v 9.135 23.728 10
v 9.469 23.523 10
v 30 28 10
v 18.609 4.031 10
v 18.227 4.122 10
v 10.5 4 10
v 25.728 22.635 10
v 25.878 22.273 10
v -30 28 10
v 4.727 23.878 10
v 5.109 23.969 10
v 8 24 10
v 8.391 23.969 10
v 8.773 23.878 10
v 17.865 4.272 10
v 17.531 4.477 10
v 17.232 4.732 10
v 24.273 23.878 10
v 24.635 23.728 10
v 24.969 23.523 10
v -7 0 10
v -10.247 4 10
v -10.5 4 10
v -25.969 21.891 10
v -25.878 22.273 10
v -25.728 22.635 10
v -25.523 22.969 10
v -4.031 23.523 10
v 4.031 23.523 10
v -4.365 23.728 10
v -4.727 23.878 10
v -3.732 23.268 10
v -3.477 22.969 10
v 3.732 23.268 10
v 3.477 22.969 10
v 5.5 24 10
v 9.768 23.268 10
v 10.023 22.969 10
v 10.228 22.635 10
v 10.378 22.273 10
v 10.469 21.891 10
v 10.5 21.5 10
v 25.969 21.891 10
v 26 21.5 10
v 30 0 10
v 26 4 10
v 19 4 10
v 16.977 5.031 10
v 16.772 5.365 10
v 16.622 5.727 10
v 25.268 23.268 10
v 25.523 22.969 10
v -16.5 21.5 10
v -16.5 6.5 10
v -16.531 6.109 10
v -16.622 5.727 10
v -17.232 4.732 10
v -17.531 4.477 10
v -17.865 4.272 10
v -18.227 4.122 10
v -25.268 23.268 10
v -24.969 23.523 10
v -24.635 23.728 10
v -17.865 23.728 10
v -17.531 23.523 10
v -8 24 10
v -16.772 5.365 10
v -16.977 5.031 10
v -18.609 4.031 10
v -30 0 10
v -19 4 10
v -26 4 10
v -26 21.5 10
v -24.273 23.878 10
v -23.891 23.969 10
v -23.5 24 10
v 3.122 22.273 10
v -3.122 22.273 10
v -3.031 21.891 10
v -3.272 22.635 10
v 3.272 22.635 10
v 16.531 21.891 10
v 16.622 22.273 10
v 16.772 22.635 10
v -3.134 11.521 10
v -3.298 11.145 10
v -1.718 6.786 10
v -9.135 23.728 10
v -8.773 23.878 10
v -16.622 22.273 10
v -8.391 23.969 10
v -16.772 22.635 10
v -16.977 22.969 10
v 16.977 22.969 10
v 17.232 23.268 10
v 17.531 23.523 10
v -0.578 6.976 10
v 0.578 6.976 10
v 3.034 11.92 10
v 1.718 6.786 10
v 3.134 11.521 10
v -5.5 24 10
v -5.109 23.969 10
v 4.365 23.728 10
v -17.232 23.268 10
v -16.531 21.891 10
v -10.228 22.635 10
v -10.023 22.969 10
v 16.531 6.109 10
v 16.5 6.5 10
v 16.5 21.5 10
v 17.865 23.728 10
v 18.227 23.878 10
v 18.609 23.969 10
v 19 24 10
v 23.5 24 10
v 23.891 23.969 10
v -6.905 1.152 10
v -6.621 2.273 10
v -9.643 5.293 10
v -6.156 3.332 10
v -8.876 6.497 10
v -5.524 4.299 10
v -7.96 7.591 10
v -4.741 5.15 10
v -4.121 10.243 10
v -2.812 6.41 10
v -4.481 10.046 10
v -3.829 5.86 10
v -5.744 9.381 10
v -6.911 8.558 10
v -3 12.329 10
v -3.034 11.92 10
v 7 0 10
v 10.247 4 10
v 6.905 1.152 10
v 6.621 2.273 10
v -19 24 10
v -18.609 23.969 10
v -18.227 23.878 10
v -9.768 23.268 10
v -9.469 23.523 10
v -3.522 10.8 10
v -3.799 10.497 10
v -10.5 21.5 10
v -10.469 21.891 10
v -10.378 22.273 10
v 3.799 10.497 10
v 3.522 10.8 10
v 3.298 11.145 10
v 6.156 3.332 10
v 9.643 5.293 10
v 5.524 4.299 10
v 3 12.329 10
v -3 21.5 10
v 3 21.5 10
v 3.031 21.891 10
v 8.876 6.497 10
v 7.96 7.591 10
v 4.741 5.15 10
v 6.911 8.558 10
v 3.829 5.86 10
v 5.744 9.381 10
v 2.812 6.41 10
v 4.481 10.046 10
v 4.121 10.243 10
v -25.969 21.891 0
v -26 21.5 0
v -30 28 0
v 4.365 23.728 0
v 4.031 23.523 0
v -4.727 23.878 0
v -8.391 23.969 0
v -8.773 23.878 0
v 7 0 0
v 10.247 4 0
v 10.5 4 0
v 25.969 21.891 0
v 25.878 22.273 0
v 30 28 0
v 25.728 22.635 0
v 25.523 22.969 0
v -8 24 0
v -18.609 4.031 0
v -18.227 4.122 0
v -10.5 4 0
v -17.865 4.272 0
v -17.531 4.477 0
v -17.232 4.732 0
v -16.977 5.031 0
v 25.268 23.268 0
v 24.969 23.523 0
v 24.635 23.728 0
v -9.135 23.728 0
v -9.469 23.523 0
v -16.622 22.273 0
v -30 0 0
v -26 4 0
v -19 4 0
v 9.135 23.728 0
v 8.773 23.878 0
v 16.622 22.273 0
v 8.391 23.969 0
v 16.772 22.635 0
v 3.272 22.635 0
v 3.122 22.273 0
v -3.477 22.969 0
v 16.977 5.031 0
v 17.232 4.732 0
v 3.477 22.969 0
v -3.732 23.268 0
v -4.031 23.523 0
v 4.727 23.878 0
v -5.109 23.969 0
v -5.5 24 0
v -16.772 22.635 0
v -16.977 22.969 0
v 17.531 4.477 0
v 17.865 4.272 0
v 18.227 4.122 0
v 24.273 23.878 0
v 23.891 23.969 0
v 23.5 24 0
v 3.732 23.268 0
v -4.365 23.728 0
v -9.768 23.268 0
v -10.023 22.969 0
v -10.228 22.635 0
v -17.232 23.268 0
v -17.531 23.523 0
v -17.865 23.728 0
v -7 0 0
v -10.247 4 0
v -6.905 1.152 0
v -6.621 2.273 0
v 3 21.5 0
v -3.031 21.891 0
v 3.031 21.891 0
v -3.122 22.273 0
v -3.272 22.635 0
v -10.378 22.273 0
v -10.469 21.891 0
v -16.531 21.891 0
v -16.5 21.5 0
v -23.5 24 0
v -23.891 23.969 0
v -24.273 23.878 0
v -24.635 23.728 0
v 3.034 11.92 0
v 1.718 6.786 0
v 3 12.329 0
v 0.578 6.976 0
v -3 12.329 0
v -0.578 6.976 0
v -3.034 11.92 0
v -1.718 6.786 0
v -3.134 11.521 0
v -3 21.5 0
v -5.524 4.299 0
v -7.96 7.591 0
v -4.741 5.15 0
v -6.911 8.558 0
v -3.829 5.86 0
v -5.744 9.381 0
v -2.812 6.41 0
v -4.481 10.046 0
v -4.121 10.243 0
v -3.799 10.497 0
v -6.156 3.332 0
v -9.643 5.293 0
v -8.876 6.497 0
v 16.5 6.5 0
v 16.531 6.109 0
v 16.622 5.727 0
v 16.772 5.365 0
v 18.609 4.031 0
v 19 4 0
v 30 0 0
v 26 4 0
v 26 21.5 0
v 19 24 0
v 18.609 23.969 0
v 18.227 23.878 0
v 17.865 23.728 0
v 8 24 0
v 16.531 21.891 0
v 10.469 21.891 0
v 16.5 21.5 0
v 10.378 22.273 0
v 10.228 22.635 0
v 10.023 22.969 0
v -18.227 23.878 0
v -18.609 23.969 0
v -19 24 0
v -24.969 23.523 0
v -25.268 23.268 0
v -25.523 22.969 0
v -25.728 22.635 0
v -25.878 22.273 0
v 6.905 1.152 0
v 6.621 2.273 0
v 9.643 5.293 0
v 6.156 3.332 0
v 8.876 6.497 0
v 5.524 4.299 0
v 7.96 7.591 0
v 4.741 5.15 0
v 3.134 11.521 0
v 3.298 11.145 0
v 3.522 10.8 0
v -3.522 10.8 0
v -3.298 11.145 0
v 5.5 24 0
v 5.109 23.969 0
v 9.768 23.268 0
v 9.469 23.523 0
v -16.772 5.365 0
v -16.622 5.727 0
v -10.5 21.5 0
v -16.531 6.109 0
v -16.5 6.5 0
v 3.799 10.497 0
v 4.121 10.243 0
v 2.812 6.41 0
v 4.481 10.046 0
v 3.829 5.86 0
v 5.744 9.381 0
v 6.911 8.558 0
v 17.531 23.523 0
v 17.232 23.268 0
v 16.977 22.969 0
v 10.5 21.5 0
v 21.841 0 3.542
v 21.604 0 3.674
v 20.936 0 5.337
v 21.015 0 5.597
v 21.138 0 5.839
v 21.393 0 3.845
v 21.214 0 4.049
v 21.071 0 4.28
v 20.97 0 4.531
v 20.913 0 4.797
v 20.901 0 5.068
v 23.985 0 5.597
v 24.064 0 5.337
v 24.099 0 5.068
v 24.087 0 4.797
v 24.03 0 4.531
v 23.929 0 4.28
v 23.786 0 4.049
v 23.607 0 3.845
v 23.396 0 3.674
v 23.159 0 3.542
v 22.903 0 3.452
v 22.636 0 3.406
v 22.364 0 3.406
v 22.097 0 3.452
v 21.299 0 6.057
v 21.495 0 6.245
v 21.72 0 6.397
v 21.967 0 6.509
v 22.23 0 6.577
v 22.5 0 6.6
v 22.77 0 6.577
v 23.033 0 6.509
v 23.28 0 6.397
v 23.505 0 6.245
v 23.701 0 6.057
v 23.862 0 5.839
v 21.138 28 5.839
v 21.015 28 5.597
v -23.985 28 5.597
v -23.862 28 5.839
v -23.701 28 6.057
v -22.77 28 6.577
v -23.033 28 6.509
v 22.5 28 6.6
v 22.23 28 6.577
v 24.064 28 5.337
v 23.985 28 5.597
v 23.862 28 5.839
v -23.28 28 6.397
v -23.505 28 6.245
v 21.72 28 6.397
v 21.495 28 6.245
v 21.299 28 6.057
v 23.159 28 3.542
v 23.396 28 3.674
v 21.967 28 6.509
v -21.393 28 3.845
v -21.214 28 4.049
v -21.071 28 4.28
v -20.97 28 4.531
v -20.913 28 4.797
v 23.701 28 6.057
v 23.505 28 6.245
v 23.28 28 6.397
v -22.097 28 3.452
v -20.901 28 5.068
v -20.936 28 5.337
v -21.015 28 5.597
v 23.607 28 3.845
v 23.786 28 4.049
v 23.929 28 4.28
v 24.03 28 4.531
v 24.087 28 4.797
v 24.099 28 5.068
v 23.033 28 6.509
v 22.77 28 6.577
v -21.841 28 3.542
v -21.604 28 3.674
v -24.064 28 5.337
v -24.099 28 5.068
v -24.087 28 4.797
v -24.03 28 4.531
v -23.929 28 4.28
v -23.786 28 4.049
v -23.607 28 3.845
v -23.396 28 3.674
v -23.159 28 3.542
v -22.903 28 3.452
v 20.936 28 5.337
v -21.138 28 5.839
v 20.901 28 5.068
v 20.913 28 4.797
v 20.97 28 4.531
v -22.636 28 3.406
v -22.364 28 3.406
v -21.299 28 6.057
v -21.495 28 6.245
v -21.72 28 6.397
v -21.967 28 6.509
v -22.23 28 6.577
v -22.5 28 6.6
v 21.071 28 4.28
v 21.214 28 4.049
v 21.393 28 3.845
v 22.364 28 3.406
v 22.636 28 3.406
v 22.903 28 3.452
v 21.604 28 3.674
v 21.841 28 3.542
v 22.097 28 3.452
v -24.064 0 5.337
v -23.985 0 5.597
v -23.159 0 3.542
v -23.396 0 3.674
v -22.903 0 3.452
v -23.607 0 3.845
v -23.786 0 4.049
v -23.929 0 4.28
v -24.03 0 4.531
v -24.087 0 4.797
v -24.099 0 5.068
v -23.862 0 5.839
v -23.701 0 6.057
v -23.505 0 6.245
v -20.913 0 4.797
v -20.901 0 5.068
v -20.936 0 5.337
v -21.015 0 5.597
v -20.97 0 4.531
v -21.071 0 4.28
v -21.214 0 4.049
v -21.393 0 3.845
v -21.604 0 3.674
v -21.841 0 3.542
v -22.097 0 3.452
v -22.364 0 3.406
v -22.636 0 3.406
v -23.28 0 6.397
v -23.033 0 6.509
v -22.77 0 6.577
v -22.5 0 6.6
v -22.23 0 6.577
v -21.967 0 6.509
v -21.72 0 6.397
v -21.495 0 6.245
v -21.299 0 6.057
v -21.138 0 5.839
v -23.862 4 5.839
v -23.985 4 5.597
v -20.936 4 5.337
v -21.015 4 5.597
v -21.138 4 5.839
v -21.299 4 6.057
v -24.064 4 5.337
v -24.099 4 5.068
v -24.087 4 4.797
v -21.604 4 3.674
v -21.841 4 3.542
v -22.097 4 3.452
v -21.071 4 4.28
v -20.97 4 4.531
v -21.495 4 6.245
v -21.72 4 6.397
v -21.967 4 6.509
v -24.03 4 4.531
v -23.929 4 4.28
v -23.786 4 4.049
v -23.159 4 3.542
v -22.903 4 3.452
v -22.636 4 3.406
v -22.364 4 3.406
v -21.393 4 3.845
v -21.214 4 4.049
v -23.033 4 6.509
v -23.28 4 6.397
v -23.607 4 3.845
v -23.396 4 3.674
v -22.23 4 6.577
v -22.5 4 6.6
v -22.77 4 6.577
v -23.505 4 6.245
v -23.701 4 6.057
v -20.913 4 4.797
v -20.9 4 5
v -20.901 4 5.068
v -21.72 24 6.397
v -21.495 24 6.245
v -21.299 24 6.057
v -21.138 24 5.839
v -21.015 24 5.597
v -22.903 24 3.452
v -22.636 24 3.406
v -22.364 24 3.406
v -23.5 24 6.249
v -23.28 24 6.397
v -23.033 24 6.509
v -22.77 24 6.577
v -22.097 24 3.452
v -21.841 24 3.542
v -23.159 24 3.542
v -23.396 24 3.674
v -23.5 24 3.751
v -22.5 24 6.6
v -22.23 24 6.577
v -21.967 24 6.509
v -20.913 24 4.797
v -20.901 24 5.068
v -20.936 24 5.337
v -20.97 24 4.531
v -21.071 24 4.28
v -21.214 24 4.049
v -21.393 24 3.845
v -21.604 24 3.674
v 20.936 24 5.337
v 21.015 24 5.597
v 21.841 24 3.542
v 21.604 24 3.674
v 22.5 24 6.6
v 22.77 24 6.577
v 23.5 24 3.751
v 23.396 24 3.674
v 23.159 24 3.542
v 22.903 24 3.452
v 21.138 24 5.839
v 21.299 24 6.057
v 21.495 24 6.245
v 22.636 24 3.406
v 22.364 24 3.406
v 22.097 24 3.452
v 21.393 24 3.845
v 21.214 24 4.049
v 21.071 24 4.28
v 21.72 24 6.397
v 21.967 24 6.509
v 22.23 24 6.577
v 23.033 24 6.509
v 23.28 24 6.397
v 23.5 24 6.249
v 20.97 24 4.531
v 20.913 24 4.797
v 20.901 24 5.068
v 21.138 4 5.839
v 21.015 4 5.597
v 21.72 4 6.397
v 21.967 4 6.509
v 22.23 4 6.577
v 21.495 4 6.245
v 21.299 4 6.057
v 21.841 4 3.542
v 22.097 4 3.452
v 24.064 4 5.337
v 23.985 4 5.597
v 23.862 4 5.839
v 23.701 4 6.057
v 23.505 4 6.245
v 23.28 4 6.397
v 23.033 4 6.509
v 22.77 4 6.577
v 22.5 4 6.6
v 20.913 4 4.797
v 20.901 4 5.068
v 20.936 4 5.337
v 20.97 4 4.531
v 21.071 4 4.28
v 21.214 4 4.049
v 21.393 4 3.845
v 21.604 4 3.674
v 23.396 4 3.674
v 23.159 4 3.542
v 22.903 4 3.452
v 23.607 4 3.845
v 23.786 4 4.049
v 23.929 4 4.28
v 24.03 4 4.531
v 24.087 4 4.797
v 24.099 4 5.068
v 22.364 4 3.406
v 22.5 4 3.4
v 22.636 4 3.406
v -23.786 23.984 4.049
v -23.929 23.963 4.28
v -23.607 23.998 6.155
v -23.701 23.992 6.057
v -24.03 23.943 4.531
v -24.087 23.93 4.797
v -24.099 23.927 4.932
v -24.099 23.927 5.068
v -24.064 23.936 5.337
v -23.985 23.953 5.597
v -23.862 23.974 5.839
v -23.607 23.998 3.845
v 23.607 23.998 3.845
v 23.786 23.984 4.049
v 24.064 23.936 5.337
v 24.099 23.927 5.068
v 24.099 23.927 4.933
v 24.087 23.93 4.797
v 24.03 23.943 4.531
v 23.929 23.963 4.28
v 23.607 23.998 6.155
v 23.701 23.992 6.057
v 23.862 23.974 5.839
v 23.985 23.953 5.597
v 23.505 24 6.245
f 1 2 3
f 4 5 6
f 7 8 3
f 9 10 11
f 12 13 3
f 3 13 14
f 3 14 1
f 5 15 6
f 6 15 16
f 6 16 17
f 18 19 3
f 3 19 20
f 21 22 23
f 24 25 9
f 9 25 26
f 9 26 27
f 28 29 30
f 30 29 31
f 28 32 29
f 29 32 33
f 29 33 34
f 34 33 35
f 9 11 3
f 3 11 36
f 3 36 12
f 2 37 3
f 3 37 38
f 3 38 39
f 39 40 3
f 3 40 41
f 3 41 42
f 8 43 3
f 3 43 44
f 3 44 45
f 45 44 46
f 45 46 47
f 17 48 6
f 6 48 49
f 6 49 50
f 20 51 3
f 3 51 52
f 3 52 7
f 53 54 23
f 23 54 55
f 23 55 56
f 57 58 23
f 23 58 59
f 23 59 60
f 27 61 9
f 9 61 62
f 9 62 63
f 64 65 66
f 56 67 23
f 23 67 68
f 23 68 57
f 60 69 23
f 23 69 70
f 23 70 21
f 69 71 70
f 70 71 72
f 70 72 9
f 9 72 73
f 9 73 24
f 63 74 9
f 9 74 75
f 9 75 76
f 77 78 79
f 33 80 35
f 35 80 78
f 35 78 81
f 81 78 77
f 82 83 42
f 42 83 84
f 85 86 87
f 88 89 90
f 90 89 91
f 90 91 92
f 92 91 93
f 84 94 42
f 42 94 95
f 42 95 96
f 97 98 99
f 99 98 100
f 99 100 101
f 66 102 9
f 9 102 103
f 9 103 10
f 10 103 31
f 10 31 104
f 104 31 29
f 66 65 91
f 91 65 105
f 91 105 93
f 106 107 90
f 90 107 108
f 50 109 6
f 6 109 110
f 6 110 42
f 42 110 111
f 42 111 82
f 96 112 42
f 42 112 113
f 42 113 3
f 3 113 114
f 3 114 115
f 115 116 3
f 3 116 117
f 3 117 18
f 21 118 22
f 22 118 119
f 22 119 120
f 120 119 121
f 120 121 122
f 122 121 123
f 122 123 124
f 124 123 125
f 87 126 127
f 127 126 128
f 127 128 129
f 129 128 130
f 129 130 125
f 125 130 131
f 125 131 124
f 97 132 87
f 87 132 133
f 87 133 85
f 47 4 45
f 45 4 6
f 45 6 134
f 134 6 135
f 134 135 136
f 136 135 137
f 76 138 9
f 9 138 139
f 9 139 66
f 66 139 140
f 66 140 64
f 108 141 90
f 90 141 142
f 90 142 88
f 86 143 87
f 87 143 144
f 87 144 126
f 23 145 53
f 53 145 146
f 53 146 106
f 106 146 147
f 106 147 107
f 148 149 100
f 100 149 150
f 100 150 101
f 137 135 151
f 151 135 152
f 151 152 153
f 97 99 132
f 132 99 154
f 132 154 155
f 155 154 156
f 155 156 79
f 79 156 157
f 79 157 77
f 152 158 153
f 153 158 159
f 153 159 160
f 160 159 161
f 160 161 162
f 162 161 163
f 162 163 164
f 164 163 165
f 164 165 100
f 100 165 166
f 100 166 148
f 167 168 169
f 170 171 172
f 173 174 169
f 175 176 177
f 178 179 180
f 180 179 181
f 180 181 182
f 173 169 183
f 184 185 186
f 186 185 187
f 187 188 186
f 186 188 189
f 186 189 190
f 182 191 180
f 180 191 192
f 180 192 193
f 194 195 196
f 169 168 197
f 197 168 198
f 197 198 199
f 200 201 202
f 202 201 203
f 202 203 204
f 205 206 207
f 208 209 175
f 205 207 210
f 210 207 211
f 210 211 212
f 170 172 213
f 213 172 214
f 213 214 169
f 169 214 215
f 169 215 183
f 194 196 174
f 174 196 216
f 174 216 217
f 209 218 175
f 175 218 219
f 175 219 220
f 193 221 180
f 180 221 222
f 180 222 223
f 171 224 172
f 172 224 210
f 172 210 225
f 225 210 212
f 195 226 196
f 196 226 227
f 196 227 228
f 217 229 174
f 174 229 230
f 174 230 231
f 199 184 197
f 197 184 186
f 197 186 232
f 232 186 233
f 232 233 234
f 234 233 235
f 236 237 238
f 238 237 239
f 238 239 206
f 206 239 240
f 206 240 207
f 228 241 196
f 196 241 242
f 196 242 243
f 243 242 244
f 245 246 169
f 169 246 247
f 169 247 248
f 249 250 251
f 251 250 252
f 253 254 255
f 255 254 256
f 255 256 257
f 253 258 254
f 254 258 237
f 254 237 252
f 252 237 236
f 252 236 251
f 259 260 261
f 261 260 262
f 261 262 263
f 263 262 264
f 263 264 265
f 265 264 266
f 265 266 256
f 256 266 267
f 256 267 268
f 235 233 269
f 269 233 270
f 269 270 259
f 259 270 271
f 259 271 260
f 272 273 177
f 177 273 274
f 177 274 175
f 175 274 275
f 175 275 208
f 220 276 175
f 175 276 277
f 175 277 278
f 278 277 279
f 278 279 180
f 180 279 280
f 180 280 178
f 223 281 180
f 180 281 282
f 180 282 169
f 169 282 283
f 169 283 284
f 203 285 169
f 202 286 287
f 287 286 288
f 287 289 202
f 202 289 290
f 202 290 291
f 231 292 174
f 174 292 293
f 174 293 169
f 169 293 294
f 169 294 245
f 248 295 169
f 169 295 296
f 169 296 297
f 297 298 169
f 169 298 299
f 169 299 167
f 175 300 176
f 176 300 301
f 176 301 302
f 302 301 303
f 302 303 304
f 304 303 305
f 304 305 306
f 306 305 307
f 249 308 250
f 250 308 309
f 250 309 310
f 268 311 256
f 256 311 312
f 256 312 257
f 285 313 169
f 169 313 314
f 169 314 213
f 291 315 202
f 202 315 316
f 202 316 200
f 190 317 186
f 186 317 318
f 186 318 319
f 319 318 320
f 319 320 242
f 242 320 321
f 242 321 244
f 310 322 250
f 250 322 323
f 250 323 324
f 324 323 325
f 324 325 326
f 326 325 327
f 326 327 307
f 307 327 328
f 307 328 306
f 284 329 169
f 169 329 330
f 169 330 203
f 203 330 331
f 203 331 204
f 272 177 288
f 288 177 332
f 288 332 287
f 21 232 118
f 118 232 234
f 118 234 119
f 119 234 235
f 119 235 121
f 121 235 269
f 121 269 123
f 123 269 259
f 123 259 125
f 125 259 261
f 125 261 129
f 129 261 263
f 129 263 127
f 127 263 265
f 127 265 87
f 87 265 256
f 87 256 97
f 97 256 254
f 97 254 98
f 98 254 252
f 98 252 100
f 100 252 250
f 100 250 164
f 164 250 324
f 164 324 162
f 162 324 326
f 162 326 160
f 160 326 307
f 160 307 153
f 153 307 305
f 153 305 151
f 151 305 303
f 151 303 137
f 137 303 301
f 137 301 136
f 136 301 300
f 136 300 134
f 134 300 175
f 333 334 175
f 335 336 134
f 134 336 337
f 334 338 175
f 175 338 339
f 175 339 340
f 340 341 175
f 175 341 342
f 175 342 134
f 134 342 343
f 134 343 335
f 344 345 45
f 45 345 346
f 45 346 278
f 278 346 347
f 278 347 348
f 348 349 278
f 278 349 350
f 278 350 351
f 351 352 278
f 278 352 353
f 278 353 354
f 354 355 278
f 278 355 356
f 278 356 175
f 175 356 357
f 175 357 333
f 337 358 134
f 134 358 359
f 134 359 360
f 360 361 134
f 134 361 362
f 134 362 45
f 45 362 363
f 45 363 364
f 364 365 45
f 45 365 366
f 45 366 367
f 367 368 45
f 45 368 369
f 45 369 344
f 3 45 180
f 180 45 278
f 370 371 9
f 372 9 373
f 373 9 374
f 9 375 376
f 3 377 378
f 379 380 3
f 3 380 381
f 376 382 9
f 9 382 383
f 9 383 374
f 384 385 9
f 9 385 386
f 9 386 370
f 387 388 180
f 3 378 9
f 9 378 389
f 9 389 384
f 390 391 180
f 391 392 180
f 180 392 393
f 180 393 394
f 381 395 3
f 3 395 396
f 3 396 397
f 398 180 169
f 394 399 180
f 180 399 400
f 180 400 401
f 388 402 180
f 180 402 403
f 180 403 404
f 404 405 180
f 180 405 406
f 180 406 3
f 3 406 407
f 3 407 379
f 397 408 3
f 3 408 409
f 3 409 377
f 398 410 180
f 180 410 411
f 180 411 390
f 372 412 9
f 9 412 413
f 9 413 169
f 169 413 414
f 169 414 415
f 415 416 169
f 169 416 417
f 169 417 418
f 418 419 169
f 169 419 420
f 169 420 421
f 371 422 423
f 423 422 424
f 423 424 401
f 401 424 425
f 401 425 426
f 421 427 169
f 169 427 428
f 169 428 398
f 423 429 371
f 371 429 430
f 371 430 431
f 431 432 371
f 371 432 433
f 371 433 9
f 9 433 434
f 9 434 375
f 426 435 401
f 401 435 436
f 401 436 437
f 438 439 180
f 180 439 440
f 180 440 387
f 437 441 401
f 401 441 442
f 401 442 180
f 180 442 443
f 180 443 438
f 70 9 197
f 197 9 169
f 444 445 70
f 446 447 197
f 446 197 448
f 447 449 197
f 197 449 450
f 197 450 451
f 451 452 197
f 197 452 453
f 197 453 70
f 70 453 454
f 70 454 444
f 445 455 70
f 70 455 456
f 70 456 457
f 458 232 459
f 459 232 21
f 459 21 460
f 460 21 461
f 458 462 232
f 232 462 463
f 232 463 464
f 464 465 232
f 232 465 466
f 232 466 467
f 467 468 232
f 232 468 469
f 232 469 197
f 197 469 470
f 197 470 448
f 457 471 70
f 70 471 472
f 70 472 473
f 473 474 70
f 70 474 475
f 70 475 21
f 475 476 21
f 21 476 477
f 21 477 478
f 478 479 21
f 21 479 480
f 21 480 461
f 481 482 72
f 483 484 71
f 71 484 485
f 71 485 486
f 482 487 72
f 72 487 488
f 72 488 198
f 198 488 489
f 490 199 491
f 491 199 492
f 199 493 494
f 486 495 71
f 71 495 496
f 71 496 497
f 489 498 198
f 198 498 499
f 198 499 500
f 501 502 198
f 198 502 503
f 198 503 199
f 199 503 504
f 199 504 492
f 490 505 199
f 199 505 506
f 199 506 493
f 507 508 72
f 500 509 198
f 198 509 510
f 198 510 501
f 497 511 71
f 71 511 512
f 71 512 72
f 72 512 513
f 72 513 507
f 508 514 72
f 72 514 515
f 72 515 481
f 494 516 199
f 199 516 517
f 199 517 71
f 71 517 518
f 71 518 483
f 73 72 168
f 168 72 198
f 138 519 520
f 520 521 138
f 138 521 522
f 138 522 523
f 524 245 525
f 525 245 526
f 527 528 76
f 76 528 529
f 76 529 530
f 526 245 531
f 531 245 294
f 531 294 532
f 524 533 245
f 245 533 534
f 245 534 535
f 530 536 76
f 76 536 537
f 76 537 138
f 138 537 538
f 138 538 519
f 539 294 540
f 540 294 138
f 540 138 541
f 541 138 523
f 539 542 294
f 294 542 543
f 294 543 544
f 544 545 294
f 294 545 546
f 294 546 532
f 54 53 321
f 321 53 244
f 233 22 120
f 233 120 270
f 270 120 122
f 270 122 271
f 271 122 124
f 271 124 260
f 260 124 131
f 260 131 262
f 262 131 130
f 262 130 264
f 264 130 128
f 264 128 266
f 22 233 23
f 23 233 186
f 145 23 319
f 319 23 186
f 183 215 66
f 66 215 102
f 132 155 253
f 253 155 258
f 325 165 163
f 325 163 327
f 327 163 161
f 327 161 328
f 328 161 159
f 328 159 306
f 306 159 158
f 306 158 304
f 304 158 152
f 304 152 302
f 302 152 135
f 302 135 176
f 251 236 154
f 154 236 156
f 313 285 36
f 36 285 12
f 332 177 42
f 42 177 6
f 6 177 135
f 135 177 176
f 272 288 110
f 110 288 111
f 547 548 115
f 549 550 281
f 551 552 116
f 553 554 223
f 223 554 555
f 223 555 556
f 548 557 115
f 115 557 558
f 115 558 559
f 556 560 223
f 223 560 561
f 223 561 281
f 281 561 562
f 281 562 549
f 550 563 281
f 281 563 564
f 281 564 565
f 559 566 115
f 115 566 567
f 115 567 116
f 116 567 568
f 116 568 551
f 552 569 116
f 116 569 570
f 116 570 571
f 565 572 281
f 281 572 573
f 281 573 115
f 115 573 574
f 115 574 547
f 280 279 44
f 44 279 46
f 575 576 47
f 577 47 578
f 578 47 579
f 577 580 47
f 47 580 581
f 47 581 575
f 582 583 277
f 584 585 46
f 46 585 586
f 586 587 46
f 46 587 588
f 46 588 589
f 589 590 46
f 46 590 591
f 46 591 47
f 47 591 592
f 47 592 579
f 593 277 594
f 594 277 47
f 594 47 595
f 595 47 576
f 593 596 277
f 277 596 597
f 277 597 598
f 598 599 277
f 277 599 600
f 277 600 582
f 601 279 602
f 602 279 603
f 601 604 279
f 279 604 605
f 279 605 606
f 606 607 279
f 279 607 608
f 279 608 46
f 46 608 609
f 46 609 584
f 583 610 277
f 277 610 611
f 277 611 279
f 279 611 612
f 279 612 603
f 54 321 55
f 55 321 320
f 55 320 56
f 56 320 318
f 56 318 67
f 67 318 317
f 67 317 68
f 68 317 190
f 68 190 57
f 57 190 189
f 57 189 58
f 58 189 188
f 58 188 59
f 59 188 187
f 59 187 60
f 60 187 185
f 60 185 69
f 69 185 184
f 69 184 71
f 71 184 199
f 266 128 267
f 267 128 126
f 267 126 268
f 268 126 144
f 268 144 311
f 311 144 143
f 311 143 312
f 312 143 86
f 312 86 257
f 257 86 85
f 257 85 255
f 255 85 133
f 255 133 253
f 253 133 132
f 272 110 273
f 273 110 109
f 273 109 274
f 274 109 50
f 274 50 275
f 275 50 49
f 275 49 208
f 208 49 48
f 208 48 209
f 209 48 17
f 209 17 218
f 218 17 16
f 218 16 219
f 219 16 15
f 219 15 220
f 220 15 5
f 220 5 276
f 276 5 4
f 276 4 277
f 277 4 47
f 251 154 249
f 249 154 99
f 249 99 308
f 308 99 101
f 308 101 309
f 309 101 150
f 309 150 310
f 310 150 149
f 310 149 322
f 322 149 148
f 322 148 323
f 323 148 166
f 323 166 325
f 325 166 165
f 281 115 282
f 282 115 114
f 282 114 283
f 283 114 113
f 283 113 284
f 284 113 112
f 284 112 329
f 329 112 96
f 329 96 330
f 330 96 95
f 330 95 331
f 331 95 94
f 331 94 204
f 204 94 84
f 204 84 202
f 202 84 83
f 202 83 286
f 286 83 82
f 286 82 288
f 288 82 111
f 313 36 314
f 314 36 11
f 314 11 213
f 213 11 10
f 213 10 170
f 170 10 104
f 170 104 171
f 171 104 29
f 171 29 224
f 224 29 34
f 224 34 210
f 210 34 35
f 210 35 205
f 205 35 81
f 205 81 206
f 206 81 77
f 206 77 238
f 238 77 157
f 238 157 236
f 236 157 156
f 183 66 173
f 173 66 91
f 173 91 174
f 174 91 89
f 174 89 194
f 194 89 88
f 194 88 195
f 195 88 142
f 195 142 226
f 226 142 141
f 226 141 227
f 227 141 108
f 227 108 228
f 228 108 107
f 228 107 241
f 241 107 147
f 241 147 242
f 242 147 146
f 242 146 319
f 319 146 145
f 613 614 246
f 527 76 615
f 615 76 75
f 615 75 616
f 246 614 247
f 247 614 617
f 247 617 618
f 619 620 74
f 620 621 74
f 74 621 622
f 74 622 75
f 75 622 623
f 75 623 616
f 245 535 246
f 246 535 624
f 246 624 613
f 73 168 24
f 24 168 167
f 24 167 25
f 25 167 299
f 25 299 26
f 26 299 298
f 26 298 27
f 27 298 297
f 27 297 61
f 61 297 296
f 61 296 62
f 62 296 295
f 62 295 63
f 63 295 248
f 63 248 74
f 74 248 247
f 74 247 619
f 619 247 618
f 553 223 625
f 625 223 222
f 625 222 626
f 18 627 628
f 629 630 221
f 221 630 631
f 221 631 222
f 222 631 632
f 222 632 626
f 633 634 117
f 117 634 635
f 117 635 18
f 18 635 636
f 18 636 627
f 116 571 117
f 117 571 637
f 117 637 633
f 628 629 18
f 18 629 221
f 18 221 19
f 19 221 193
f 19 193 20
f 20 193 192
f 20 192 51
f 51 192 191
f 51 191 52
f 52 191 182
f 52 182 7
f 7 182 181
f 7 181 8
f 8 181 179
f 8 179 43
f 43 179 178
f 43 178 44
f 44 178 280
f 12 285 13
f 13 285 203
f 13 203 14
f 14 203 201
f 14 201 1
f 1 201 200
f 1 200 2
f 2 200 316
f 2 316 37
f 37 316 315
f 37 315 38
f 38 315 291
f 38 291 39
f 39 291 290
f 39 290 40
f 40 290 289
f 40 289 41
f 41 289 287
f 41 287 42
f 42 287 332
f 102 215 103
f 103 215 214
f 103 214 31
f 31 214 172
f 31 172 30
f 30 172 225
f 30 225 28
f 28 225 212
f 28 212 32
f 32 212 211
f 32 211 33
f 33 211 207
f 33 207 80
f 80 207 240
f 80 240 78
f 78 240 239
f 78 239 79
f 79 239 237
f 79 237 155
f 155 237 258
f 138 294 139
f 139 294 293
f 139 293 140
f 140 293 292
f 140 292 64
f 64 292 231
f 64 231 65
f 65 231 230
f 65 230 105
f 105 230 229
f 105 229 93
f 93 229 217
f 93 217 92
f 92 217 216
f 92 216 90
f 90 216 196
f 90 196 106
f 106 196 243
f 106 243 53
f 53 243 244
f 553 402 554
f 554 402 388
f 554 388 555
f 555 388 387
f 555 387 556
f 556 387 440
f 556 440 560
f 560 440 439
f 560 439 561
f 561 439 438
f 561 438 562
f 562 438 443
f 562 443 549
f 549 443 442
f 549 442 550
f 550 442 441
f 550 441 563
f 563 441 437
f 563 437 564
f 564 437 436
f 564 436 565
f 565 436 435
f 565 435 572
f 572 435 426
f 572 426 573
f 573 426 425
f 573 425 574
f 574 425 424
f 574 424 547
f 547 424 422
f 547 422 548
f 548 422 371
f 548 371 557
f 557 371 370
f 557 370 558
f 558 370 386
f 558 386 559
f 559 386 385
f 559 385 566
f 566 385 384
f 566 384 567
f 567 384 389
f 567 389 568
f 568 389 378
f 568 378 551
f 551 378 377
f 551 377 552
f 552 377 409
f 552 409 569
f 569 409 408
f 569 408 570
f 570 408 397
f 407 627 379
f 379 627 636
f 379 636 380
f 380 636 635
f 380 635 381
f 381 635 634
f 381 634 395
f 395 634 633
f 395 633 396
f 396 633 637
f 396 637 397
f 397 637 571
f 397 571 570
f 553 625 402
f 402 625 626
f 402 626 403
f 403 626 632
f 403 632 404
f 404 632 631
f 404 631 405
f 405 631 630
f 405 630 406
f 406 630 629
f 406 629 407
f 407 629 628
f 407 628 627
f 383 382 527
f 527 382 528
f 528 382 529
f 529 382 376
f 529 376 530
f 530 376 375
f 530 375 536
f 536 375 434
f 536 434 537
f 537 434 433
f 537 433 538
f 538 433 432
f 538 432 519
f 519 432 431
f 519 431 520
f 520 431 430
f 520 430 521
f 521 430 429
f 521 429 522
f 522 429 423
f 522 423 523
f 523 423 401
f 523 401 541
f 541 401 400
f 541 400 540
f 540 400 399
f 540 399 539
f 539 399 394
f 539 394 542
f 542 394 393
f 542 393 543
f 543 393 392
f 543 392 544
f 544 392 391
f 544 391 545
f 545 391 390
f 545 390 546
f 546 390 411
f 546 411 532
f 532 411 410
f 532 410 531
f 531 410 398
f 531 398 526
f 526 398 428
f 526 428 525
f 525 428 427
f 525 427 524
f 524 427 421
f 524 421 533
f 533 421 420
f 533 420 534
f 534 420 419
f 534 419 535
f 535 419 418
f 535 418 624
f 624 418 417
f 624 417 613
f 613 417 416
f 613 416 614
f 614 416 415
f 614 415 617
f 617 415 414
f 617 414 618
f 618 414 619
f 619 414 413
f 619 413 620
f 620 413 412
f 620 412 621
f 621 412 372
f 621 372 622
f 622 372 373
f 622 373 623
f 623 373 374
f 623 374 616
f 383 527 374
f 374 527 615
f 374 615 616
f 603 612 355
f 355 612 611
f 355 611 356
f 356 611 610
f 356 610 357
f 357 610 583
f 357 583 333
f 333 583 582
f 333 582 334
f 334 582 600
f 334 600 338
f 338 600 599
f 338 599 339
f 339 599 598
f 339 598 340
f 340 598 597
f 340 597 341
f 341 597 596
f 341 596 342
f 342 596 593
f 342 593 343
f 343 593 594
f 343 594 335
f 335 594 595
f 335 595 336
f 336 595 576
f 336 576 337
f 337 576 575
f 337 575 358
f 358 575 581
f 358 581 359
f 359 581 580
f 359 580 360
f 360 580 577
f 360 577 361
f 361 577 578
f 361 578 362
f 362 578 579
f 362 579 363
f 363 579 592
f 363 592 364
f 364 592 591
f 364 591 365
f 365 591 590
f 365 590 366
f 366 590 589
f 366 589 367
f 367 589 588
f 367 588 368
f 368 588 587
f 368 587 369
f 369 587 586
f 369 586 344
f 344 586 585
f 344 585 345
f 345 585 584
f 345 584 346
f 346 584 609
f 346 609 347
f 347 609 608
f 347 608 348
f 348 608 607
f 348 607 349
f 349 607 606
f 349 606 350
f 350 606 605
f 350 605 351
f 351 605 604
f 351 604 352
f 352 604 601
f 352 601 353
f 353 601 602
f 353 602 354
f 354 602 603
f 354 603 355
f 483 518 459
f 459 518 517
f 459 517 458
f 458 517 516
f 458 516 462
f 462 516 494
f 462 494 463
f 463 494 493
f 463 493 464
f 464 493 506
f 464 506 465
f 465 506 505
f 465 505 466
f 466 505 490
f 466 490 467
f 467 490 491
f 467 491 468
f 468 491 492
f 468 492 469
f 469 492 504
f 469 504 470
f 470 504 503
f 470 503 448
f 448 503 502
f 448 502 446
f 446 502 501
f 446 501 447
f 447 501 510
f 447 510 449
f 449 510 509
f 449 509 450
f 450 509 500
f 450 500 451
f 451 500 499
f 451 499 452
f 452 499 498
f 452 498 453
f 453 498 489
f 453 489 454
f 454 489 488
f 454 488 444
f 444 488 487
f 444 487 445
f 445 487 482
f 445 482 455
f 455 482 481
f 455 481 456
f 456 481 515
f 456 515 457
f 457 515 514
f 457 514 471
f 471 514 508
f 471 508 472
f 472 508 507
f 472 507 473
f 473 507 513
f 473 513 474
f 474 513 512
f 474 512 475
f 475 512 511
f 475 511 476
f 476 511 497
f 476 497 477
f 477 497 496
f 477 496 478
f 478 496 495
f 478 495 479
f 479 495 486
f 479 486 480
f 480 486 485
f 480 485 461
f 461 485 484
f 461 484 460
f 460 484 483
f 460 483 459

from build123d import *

# Parameters (mm, degrees)
EXTRUDE_1_DEPTH     = 10
SKETCH_2_W          = 9.5
SKETCH_2_H          = 20
CUT_EXTRUDE_2_DEPTH = 15
FILLET_1_R          = 2.5
SKETCH_3_R          = 1.6
CUT_EXTRUDE_1_DEPTH = 43.237424164


with BuildPart() as part:
    # ｽｹｯﾁ1 → ﾎﾞｽ - 押し出し1 (new body)
    with BuildSketch(Plane.XY):
        with BuildLine():
            Line((-30, 28), (-30, 0))
            Line((-30, 0), (-7, 0))
            ThreePointArc((-7, 0), (-4.949747468, 4.949747468), (0, 7))
            Line((0, 7), (0, 28))
            Line((0, 28), (-30, 28))
        make_face()
        with BuildLine():
            Line((7, 0), (30, 0))
            Line((30, 0), (30, 28))
            Line((30, 28), (0, 28))
            Line((0, 28), (0, 7))
            ThreePointArc((0, 7), (4.949747468, 4.949747468), (7, 0))
        make_face()
    extrude(amount=EXTRUDE_1_DEPTH)

    # ｽｹｯﾁ2 → ｶｯﾄ - 押し出し2 (cut)
    with BuildSketch(Plane.XY.offset(10)):
        with BuildLine():
            Line((10.5, 24), (3, 24))
            Line((3, 24), (3, 10.583005244))
            ThreePointArc((3, 10.583005244), (7.396243348, 8.14221004), (10.246950766, 4))
            Line((10.246950766, 4), (10.5, 4))
            Line((10.5, 4), (10.5, 24))
        make_face()
        with BuildLine():
            Line((-3, 10.583005244), (-3, 24))
            Line((-3, 24), (-10.5, 24))
            Line((-10.5, 24), (-10.5, 4))
            Line((-10.5, 4), (-10.246950766, 4))
            ThreePointArc((-10.246950766, 4), (-7.396243348, 8.14221004), (-3, 10.583005244))
        make_face()
        with Locations((21.25, 14)):
            Rectangle(SKETCH_2_W, SKETCH_2_H)
        with Locations((-21.25, 14)):
            Rectangle(SKETCH_2_W, SKETCH_2_H)
    extrude(amount=-CUT_EXTRUDE_2_DEPTH, mode=Mode.SUBTRACT)

    # ﾌｨﾚｯﾄ1
    fillet_1_edges = [part.edges().sort_by_distance(p)[0] for p in [
        (16.5, 4, 5),
        (16.5, 24, 5),
        (26, 24, 5),
        (3, 10.583005244, 5),
        (3, 24, 5),
        (10.5, 24, 5),
        (-3, 10.583005244, 5),
        (-10.5, 24, 5),
        (-3, 24, 5),
        (-16.5, 4, 5),
        (-26, 24, 5),
        (-16.5, 24, 5),
    ]]
    fillet(fillet_1_edges, radius=FILLET_1_R)

    # ｽｹｯﾁ3 → ｶｯﾄ - 押し出し1 (cut, through all)
    with BuildSketch(Plane(origin=(0, 28, 0), x_dir=(1, 0, 0), z_dir=(0, 1, 0))):
        with Locations(Location((-22.5, -5, 0), (0, 0, 270))):
            Circle(SKETCH_3_R)
        with Locations(Location((22.5, -5, 0), (0, 0, 270))):
            Circle(SKETCH_3_R)
    extrude(amount=-CUT_EXTRUDE_1_DEPTH, mode=Mode.SUBTRACT)


solid = part.part
